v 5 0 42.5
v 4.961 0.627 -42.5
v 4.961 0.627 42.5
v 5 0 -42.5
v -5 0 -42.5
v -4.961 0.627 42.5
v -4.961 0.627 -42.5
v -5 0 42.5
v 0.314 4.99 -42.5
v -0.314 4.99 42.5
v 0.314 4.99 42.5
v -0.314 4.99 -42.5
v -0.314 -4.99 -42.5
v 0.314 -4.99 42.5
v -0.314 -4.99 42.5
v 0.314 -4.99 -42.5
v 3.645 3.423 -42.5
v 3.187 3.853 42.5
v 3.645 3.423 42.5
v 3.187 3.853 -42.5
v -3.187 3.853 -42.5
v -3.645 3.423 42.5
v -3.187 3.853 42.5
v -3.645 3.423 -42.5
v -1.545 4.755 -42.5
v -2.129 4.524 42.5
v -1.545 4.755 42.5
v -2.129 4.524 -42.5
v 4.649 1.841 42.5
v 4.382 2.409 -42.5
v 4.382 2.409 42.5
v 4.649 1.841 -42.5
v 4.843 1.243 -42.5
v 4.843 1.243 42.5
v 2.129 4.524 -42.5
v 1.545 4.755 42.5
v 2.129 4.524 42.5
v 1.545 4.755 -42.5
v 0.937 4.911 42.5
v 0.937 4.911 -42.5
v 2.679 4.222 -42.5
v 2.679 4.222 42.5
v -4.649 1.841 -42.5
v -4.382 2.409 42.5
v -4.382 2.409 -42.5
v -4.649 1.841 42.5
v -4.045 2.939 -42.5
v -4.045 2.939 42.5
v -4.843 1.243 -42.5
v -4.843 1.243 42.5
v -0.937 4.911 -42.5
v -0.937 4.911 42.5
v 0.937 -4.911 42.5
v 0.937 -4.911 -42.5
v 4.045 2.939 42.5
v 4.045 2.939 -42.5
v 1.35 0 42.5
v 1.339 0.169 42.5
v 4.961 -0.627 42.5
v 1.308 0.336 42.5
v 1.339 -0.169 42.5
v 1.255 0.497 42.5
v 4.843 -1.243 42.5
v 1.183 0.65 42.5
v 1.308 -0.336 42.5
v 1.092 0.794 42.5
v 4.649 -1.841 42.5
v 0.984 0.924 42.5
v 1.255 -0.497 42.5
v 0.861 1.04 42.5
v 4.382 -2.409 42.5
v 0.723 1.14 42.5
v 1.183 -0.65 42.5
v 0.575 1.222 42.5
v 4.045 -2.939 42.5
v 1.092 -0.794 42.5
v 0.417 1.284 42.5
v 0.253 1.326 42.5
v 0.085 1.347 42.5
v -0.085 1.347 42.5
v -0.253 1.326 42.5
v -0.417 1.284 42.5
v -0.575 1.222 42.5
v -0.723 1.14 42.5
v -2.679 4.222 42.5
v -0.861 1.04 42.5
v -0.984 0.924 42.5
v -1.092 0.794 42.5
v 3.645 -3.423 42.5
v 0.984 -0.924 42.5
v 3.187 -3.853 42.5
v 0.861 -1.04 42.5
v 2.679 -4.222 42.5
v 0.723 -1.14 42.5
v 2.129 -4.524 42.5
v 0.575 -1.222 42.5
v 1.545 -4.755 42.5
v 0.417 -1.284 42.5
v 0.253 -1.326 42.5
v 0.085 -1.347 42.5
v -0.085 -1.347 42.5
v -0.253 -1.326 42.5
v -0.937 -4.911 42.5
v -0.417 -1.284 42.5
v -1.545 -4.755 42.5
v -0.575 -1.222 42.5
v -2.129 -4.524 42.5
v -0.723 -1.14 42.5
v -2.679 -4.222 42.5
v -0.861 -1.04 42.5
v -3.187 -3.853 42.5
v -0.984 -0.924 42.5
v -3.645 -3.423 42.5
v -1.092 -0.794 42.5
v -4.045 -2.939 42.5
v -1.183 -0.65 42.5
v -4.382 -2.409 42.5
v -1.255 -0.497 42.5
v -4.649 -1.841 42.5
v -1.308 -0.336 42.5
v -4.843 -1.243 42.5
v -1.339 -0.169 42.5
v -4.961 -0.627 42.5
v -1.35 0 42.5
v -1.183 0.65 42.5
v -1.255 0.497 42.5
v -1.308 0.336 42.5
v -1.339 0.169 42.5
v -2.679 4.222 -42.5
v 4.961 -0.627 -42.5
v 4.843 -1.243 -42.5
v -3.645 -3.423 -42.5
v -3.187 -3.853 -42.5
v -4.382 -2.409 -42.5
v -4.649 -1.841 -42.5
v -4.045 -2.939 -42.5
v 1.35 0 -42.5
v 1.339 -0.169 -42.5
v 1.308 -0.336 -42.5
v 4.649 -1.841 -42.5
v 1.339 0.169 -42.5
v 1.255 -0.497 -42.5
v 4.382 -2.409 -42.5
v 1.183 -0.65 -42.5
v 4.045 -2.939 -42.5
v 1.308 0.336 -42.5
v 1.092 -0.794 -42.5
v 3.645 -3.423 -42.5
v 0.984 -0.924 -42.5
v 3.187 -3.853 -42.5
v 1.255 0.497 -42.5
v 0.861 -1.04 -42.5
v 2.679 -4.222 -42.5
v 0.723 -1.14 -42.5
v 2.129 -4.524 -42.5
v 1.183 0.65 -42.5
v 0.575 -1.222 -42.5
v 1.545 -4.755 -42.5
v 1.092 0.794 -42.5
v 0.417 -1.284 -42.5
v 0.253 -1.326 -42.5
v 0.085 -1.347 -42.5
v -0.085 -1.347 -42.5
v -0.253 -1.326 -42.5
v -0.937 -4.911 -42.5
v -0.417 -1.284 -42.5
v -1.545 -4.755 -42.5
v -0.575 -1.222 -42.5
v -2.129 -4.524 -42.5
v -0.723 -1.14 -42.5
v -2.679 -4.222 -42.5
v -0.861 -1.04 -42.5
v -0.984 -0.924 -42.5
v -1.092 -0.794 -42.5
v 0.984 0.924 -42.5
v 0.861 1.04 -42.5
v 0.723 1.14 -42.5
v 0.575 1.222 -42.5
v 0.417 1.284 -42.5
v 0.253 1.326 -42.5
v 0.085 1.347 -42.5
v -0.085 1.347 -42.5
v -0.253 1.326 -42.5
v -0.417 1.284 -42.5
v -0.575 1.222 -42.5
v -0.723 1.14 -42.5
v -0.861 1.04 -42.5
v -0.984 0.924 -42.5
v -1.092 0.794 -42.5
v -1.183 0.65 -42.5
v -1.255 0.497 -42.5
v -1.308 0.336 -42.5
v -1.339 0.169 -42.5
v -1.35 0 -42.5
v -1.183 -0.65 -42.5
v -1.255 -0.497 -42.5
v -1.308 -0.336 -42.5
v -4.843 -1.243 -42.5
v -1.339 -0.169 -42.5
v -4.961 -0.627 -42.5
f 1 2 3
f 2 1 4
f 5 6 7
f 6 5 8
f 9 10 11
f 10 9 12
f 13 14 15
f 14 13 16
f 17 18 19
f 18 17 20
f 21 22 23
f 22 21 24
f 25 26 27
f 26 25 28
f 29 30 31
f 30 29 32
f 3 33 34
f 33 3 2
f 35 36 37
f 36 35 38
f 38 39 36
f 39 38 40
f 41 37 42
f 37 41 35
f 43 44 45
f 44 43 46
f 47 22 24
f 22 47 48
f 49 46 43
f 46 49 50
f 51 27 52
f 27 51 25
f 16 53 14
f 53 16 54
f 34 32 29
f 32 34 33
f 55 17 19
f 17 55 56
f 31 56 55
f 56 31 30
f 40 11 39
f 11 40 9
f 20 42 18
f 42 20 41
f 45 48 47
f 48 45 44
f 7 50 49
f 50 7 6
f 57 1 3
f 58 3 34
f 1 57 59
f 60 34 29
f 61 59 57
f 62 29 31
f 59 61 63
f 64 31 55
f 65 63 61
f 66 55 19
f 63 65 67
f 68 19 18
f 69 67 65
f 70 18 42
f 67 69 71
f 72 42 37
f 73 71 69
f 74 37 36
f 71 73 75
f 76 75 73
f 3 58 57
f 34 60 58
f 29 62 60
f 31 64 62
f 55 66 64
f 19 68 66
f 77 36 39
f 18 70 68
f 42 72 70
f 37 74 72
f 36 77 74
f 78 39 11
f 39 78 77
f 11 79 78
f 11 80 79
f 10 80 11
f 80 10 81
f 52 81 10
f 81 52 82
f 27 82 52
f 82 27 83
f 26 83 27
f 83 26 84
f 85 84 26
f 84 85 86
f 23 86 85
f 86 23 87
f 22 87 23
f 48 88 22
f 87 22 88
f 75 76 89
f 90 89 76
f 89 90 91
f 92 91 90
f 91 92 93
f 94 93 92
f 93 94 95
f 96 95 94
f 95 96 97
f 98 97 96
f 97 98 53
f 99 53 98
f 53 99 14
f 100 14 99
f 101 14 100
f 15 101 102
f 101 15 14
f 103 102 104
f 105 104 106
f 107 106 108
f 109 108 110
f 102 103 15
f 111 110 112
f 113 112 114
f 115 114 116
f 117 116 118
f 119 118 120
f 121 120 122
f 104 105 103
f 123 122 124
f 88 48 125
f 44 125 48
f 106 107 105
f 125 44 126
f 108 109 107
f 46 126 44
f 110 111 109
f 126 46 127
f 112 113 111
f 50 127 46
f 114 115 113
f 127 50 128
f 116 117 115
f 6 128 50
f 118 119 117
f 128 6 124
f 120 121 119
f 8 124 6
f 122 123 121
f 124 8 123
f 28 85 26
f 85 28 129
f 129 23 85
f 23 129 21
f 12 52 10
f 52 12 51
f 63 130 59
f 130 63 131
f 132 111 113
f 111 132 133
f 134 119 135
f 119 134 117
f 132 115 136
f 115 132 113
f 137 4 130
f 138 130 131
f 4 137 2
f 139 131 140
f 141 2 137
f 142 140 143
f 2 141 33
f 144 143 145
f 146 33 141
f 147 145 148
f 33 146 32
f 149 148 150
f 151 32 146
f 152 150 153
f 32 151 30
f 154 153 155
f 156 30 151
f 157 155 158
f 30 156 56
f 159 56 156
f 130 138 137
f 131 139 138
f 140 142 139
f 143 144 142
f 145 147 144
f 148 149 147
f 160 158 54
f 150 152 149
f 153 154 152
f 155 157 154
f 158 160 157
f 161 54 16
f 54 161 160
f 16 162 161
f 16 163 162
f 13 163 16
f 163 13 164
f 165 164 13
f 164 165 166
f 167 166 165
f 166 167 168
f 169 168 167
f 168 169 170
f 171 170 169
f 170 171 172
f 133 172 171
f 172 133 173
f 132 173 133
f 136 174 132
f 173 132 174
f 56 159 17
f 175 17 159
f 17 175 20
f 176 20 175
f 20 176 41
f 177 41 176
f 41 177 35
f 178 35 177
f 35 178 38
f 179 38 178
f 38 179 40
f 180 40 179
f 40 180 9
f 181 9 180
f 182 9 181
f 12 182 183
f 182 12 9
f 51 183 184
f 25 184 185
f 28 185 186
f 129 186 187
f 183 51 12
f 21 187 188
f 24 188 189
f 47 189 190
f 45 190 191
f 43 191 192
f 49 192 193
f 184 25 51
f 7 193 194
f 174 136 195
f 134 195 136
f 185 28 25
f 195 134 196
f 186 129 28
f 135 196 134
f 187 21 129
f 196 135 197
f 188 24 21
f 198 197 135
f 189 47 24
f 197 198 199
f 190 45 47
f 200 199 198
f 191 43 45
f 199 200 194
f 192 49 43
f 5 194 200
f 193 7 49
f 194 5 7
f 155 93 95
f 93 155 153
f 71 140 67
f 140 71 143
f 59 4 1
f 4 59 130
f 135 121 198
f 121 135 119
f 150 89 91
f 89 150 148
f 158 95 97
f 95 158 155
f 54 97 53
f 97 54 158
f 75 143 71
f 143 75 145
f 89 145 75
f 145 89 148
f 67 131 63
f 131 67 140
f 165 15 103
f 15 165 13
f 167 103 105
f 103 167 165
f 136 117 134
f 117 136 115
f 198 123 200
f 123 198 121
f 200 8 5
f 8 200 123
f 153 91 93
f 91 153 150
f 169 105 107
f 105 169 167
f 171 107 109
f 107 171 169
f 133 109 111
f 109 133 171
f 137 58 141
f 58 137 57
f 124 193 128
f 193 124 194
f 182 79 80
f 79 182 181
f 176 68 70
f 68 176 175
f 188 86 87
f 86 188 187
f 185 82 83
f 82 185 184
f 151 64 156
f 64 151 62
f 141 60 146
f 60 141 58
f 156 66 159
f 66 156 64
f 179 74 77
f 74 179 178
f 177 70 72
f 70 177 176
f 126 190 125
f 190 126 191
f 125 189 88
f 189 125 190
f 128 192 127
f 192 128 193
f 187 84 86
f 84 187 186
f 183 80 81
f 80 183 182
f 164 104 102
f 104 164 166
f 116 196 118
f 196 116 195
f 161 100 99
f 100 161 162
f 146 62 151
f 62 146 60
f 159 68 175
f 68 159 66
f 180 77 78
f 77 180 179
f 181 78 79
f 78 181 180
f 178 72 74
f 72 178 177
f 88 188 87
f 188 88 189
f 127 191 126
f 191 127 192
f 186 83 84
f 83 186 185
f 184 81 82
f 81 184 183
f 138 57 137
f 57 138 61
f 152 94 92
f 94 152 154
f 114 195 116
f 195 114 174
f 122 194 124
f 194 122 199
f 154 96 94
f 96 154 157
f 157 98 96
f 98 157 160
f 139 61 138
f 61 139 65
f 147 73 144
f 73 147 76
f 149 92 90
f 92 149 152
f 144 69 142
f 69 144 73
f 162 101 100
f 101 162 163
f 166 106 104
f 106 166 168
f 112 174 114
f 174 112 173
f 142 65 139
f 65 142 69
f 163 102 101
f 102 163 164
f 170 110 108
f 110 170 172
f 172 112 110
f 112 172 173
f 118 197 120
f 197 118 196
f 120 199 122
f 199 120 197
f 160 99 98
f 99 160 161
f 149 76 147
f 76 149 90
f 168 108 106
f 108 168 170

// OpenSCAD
$fn = 50;


difference() {
	union() {
		translate(v = [0, 0, -42.5000000000]) {
			cylinder(h = 85, r = 5.0000000000);
		}
	}
	union() {
		translate(v = [0, 0, -100.0000000000]) {
			cylinder(h = 200, r = 1.3500000000);
		}
	}
}
